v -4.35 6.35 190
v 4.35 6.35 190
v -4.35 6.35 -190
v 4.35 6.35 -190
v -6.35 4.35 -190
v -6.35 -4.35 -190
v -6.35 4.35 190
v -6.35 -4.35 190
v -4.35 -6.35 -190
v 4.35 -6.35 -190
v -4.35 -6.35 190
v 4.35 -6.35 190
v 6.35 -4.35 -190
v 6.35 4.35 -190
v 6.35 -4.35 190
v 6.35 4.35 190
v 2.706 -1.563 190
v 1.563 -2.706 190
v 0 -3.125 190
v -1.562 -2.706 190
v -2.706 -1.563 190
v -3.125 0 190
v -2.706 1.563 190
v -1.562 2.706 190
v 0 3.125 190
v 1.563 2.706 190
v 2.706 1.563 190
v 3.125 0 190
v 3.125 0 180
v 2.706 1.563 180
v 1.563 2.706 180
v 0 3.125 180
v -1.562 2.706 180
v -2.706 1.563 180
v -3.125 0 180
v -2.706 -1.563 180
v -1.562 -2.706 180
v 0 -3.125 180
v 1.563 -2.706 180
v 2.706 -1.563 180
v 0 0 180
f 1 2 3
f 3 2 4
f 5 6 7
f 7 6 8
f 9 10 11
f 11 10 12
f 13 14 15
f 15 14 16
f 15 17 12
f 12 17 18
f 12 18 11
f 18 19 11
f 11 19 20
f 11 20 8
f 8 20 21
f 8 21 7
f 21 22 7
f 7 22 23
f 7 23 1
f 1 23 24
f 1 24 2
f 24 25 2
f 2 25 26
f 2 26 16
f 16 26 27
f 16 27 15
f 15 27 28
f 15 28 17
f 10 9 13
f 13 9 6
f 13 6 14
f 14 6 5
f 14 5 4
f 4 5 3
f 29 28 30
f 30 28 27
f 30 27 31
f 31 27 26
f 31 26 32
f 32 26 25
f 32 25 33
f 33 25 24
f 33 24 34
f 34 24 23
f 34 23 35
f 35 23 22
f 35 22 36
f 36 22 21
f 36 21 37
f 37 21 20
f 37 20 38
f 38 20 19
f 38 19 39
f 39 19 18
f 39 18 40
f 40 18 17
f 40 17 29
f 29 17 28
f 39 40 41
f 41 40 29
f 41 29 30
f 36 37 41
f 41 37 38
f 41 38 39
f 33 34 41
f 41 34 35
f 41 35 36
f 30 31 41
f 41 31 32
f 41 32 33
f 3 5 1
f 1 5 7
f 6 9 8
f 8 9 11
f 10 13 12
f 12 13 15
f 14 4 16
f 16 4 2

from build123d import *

# Parameters (mm, degrees)
SKETCH1_W           = 12.7
SKETCH1_H           = 12.7
BOSS_EXTRUDE1_DEPTH = 190
SKETCH2_R           = 3.125
CUT_EXTRUDE1_DEPTH  = 10
CHAMFER1_SIZE       = 2


with BuildPart() as part:
    # Sketch1 → Boss-Extrude1 (new, symmetric)
    with BuildSketch(Plane.XY):
        Rectangle(SKETCH1_W, SKETCH1_H)
    extrude(amount=BOSS_EXTRUDE1_DEPTH, both=True)

    # Sketch2 → Cut-Extrude1 (cut)
    with BuildSketch(Plane.XY.offset(190)):
        Circle(SKETCH2_R)
    extrude(amount=-CUT_EXTRUDE1_DEPTH, mode=Mode.SUBTRACT)

    # Chamfer1
    chamfer1_edges = [part.edges().sort_by_distance(p)[0] for p in [
        (-6.35, 6.35, 0),
        (-6.35, -6.35, 0),
        (6.35, -6.35, 0),
        (6.35, 6.35, 0),
    ]]
    chamfer(chamfer1_edges, length=CHAMFER1_SIZE)


solid = part.part
